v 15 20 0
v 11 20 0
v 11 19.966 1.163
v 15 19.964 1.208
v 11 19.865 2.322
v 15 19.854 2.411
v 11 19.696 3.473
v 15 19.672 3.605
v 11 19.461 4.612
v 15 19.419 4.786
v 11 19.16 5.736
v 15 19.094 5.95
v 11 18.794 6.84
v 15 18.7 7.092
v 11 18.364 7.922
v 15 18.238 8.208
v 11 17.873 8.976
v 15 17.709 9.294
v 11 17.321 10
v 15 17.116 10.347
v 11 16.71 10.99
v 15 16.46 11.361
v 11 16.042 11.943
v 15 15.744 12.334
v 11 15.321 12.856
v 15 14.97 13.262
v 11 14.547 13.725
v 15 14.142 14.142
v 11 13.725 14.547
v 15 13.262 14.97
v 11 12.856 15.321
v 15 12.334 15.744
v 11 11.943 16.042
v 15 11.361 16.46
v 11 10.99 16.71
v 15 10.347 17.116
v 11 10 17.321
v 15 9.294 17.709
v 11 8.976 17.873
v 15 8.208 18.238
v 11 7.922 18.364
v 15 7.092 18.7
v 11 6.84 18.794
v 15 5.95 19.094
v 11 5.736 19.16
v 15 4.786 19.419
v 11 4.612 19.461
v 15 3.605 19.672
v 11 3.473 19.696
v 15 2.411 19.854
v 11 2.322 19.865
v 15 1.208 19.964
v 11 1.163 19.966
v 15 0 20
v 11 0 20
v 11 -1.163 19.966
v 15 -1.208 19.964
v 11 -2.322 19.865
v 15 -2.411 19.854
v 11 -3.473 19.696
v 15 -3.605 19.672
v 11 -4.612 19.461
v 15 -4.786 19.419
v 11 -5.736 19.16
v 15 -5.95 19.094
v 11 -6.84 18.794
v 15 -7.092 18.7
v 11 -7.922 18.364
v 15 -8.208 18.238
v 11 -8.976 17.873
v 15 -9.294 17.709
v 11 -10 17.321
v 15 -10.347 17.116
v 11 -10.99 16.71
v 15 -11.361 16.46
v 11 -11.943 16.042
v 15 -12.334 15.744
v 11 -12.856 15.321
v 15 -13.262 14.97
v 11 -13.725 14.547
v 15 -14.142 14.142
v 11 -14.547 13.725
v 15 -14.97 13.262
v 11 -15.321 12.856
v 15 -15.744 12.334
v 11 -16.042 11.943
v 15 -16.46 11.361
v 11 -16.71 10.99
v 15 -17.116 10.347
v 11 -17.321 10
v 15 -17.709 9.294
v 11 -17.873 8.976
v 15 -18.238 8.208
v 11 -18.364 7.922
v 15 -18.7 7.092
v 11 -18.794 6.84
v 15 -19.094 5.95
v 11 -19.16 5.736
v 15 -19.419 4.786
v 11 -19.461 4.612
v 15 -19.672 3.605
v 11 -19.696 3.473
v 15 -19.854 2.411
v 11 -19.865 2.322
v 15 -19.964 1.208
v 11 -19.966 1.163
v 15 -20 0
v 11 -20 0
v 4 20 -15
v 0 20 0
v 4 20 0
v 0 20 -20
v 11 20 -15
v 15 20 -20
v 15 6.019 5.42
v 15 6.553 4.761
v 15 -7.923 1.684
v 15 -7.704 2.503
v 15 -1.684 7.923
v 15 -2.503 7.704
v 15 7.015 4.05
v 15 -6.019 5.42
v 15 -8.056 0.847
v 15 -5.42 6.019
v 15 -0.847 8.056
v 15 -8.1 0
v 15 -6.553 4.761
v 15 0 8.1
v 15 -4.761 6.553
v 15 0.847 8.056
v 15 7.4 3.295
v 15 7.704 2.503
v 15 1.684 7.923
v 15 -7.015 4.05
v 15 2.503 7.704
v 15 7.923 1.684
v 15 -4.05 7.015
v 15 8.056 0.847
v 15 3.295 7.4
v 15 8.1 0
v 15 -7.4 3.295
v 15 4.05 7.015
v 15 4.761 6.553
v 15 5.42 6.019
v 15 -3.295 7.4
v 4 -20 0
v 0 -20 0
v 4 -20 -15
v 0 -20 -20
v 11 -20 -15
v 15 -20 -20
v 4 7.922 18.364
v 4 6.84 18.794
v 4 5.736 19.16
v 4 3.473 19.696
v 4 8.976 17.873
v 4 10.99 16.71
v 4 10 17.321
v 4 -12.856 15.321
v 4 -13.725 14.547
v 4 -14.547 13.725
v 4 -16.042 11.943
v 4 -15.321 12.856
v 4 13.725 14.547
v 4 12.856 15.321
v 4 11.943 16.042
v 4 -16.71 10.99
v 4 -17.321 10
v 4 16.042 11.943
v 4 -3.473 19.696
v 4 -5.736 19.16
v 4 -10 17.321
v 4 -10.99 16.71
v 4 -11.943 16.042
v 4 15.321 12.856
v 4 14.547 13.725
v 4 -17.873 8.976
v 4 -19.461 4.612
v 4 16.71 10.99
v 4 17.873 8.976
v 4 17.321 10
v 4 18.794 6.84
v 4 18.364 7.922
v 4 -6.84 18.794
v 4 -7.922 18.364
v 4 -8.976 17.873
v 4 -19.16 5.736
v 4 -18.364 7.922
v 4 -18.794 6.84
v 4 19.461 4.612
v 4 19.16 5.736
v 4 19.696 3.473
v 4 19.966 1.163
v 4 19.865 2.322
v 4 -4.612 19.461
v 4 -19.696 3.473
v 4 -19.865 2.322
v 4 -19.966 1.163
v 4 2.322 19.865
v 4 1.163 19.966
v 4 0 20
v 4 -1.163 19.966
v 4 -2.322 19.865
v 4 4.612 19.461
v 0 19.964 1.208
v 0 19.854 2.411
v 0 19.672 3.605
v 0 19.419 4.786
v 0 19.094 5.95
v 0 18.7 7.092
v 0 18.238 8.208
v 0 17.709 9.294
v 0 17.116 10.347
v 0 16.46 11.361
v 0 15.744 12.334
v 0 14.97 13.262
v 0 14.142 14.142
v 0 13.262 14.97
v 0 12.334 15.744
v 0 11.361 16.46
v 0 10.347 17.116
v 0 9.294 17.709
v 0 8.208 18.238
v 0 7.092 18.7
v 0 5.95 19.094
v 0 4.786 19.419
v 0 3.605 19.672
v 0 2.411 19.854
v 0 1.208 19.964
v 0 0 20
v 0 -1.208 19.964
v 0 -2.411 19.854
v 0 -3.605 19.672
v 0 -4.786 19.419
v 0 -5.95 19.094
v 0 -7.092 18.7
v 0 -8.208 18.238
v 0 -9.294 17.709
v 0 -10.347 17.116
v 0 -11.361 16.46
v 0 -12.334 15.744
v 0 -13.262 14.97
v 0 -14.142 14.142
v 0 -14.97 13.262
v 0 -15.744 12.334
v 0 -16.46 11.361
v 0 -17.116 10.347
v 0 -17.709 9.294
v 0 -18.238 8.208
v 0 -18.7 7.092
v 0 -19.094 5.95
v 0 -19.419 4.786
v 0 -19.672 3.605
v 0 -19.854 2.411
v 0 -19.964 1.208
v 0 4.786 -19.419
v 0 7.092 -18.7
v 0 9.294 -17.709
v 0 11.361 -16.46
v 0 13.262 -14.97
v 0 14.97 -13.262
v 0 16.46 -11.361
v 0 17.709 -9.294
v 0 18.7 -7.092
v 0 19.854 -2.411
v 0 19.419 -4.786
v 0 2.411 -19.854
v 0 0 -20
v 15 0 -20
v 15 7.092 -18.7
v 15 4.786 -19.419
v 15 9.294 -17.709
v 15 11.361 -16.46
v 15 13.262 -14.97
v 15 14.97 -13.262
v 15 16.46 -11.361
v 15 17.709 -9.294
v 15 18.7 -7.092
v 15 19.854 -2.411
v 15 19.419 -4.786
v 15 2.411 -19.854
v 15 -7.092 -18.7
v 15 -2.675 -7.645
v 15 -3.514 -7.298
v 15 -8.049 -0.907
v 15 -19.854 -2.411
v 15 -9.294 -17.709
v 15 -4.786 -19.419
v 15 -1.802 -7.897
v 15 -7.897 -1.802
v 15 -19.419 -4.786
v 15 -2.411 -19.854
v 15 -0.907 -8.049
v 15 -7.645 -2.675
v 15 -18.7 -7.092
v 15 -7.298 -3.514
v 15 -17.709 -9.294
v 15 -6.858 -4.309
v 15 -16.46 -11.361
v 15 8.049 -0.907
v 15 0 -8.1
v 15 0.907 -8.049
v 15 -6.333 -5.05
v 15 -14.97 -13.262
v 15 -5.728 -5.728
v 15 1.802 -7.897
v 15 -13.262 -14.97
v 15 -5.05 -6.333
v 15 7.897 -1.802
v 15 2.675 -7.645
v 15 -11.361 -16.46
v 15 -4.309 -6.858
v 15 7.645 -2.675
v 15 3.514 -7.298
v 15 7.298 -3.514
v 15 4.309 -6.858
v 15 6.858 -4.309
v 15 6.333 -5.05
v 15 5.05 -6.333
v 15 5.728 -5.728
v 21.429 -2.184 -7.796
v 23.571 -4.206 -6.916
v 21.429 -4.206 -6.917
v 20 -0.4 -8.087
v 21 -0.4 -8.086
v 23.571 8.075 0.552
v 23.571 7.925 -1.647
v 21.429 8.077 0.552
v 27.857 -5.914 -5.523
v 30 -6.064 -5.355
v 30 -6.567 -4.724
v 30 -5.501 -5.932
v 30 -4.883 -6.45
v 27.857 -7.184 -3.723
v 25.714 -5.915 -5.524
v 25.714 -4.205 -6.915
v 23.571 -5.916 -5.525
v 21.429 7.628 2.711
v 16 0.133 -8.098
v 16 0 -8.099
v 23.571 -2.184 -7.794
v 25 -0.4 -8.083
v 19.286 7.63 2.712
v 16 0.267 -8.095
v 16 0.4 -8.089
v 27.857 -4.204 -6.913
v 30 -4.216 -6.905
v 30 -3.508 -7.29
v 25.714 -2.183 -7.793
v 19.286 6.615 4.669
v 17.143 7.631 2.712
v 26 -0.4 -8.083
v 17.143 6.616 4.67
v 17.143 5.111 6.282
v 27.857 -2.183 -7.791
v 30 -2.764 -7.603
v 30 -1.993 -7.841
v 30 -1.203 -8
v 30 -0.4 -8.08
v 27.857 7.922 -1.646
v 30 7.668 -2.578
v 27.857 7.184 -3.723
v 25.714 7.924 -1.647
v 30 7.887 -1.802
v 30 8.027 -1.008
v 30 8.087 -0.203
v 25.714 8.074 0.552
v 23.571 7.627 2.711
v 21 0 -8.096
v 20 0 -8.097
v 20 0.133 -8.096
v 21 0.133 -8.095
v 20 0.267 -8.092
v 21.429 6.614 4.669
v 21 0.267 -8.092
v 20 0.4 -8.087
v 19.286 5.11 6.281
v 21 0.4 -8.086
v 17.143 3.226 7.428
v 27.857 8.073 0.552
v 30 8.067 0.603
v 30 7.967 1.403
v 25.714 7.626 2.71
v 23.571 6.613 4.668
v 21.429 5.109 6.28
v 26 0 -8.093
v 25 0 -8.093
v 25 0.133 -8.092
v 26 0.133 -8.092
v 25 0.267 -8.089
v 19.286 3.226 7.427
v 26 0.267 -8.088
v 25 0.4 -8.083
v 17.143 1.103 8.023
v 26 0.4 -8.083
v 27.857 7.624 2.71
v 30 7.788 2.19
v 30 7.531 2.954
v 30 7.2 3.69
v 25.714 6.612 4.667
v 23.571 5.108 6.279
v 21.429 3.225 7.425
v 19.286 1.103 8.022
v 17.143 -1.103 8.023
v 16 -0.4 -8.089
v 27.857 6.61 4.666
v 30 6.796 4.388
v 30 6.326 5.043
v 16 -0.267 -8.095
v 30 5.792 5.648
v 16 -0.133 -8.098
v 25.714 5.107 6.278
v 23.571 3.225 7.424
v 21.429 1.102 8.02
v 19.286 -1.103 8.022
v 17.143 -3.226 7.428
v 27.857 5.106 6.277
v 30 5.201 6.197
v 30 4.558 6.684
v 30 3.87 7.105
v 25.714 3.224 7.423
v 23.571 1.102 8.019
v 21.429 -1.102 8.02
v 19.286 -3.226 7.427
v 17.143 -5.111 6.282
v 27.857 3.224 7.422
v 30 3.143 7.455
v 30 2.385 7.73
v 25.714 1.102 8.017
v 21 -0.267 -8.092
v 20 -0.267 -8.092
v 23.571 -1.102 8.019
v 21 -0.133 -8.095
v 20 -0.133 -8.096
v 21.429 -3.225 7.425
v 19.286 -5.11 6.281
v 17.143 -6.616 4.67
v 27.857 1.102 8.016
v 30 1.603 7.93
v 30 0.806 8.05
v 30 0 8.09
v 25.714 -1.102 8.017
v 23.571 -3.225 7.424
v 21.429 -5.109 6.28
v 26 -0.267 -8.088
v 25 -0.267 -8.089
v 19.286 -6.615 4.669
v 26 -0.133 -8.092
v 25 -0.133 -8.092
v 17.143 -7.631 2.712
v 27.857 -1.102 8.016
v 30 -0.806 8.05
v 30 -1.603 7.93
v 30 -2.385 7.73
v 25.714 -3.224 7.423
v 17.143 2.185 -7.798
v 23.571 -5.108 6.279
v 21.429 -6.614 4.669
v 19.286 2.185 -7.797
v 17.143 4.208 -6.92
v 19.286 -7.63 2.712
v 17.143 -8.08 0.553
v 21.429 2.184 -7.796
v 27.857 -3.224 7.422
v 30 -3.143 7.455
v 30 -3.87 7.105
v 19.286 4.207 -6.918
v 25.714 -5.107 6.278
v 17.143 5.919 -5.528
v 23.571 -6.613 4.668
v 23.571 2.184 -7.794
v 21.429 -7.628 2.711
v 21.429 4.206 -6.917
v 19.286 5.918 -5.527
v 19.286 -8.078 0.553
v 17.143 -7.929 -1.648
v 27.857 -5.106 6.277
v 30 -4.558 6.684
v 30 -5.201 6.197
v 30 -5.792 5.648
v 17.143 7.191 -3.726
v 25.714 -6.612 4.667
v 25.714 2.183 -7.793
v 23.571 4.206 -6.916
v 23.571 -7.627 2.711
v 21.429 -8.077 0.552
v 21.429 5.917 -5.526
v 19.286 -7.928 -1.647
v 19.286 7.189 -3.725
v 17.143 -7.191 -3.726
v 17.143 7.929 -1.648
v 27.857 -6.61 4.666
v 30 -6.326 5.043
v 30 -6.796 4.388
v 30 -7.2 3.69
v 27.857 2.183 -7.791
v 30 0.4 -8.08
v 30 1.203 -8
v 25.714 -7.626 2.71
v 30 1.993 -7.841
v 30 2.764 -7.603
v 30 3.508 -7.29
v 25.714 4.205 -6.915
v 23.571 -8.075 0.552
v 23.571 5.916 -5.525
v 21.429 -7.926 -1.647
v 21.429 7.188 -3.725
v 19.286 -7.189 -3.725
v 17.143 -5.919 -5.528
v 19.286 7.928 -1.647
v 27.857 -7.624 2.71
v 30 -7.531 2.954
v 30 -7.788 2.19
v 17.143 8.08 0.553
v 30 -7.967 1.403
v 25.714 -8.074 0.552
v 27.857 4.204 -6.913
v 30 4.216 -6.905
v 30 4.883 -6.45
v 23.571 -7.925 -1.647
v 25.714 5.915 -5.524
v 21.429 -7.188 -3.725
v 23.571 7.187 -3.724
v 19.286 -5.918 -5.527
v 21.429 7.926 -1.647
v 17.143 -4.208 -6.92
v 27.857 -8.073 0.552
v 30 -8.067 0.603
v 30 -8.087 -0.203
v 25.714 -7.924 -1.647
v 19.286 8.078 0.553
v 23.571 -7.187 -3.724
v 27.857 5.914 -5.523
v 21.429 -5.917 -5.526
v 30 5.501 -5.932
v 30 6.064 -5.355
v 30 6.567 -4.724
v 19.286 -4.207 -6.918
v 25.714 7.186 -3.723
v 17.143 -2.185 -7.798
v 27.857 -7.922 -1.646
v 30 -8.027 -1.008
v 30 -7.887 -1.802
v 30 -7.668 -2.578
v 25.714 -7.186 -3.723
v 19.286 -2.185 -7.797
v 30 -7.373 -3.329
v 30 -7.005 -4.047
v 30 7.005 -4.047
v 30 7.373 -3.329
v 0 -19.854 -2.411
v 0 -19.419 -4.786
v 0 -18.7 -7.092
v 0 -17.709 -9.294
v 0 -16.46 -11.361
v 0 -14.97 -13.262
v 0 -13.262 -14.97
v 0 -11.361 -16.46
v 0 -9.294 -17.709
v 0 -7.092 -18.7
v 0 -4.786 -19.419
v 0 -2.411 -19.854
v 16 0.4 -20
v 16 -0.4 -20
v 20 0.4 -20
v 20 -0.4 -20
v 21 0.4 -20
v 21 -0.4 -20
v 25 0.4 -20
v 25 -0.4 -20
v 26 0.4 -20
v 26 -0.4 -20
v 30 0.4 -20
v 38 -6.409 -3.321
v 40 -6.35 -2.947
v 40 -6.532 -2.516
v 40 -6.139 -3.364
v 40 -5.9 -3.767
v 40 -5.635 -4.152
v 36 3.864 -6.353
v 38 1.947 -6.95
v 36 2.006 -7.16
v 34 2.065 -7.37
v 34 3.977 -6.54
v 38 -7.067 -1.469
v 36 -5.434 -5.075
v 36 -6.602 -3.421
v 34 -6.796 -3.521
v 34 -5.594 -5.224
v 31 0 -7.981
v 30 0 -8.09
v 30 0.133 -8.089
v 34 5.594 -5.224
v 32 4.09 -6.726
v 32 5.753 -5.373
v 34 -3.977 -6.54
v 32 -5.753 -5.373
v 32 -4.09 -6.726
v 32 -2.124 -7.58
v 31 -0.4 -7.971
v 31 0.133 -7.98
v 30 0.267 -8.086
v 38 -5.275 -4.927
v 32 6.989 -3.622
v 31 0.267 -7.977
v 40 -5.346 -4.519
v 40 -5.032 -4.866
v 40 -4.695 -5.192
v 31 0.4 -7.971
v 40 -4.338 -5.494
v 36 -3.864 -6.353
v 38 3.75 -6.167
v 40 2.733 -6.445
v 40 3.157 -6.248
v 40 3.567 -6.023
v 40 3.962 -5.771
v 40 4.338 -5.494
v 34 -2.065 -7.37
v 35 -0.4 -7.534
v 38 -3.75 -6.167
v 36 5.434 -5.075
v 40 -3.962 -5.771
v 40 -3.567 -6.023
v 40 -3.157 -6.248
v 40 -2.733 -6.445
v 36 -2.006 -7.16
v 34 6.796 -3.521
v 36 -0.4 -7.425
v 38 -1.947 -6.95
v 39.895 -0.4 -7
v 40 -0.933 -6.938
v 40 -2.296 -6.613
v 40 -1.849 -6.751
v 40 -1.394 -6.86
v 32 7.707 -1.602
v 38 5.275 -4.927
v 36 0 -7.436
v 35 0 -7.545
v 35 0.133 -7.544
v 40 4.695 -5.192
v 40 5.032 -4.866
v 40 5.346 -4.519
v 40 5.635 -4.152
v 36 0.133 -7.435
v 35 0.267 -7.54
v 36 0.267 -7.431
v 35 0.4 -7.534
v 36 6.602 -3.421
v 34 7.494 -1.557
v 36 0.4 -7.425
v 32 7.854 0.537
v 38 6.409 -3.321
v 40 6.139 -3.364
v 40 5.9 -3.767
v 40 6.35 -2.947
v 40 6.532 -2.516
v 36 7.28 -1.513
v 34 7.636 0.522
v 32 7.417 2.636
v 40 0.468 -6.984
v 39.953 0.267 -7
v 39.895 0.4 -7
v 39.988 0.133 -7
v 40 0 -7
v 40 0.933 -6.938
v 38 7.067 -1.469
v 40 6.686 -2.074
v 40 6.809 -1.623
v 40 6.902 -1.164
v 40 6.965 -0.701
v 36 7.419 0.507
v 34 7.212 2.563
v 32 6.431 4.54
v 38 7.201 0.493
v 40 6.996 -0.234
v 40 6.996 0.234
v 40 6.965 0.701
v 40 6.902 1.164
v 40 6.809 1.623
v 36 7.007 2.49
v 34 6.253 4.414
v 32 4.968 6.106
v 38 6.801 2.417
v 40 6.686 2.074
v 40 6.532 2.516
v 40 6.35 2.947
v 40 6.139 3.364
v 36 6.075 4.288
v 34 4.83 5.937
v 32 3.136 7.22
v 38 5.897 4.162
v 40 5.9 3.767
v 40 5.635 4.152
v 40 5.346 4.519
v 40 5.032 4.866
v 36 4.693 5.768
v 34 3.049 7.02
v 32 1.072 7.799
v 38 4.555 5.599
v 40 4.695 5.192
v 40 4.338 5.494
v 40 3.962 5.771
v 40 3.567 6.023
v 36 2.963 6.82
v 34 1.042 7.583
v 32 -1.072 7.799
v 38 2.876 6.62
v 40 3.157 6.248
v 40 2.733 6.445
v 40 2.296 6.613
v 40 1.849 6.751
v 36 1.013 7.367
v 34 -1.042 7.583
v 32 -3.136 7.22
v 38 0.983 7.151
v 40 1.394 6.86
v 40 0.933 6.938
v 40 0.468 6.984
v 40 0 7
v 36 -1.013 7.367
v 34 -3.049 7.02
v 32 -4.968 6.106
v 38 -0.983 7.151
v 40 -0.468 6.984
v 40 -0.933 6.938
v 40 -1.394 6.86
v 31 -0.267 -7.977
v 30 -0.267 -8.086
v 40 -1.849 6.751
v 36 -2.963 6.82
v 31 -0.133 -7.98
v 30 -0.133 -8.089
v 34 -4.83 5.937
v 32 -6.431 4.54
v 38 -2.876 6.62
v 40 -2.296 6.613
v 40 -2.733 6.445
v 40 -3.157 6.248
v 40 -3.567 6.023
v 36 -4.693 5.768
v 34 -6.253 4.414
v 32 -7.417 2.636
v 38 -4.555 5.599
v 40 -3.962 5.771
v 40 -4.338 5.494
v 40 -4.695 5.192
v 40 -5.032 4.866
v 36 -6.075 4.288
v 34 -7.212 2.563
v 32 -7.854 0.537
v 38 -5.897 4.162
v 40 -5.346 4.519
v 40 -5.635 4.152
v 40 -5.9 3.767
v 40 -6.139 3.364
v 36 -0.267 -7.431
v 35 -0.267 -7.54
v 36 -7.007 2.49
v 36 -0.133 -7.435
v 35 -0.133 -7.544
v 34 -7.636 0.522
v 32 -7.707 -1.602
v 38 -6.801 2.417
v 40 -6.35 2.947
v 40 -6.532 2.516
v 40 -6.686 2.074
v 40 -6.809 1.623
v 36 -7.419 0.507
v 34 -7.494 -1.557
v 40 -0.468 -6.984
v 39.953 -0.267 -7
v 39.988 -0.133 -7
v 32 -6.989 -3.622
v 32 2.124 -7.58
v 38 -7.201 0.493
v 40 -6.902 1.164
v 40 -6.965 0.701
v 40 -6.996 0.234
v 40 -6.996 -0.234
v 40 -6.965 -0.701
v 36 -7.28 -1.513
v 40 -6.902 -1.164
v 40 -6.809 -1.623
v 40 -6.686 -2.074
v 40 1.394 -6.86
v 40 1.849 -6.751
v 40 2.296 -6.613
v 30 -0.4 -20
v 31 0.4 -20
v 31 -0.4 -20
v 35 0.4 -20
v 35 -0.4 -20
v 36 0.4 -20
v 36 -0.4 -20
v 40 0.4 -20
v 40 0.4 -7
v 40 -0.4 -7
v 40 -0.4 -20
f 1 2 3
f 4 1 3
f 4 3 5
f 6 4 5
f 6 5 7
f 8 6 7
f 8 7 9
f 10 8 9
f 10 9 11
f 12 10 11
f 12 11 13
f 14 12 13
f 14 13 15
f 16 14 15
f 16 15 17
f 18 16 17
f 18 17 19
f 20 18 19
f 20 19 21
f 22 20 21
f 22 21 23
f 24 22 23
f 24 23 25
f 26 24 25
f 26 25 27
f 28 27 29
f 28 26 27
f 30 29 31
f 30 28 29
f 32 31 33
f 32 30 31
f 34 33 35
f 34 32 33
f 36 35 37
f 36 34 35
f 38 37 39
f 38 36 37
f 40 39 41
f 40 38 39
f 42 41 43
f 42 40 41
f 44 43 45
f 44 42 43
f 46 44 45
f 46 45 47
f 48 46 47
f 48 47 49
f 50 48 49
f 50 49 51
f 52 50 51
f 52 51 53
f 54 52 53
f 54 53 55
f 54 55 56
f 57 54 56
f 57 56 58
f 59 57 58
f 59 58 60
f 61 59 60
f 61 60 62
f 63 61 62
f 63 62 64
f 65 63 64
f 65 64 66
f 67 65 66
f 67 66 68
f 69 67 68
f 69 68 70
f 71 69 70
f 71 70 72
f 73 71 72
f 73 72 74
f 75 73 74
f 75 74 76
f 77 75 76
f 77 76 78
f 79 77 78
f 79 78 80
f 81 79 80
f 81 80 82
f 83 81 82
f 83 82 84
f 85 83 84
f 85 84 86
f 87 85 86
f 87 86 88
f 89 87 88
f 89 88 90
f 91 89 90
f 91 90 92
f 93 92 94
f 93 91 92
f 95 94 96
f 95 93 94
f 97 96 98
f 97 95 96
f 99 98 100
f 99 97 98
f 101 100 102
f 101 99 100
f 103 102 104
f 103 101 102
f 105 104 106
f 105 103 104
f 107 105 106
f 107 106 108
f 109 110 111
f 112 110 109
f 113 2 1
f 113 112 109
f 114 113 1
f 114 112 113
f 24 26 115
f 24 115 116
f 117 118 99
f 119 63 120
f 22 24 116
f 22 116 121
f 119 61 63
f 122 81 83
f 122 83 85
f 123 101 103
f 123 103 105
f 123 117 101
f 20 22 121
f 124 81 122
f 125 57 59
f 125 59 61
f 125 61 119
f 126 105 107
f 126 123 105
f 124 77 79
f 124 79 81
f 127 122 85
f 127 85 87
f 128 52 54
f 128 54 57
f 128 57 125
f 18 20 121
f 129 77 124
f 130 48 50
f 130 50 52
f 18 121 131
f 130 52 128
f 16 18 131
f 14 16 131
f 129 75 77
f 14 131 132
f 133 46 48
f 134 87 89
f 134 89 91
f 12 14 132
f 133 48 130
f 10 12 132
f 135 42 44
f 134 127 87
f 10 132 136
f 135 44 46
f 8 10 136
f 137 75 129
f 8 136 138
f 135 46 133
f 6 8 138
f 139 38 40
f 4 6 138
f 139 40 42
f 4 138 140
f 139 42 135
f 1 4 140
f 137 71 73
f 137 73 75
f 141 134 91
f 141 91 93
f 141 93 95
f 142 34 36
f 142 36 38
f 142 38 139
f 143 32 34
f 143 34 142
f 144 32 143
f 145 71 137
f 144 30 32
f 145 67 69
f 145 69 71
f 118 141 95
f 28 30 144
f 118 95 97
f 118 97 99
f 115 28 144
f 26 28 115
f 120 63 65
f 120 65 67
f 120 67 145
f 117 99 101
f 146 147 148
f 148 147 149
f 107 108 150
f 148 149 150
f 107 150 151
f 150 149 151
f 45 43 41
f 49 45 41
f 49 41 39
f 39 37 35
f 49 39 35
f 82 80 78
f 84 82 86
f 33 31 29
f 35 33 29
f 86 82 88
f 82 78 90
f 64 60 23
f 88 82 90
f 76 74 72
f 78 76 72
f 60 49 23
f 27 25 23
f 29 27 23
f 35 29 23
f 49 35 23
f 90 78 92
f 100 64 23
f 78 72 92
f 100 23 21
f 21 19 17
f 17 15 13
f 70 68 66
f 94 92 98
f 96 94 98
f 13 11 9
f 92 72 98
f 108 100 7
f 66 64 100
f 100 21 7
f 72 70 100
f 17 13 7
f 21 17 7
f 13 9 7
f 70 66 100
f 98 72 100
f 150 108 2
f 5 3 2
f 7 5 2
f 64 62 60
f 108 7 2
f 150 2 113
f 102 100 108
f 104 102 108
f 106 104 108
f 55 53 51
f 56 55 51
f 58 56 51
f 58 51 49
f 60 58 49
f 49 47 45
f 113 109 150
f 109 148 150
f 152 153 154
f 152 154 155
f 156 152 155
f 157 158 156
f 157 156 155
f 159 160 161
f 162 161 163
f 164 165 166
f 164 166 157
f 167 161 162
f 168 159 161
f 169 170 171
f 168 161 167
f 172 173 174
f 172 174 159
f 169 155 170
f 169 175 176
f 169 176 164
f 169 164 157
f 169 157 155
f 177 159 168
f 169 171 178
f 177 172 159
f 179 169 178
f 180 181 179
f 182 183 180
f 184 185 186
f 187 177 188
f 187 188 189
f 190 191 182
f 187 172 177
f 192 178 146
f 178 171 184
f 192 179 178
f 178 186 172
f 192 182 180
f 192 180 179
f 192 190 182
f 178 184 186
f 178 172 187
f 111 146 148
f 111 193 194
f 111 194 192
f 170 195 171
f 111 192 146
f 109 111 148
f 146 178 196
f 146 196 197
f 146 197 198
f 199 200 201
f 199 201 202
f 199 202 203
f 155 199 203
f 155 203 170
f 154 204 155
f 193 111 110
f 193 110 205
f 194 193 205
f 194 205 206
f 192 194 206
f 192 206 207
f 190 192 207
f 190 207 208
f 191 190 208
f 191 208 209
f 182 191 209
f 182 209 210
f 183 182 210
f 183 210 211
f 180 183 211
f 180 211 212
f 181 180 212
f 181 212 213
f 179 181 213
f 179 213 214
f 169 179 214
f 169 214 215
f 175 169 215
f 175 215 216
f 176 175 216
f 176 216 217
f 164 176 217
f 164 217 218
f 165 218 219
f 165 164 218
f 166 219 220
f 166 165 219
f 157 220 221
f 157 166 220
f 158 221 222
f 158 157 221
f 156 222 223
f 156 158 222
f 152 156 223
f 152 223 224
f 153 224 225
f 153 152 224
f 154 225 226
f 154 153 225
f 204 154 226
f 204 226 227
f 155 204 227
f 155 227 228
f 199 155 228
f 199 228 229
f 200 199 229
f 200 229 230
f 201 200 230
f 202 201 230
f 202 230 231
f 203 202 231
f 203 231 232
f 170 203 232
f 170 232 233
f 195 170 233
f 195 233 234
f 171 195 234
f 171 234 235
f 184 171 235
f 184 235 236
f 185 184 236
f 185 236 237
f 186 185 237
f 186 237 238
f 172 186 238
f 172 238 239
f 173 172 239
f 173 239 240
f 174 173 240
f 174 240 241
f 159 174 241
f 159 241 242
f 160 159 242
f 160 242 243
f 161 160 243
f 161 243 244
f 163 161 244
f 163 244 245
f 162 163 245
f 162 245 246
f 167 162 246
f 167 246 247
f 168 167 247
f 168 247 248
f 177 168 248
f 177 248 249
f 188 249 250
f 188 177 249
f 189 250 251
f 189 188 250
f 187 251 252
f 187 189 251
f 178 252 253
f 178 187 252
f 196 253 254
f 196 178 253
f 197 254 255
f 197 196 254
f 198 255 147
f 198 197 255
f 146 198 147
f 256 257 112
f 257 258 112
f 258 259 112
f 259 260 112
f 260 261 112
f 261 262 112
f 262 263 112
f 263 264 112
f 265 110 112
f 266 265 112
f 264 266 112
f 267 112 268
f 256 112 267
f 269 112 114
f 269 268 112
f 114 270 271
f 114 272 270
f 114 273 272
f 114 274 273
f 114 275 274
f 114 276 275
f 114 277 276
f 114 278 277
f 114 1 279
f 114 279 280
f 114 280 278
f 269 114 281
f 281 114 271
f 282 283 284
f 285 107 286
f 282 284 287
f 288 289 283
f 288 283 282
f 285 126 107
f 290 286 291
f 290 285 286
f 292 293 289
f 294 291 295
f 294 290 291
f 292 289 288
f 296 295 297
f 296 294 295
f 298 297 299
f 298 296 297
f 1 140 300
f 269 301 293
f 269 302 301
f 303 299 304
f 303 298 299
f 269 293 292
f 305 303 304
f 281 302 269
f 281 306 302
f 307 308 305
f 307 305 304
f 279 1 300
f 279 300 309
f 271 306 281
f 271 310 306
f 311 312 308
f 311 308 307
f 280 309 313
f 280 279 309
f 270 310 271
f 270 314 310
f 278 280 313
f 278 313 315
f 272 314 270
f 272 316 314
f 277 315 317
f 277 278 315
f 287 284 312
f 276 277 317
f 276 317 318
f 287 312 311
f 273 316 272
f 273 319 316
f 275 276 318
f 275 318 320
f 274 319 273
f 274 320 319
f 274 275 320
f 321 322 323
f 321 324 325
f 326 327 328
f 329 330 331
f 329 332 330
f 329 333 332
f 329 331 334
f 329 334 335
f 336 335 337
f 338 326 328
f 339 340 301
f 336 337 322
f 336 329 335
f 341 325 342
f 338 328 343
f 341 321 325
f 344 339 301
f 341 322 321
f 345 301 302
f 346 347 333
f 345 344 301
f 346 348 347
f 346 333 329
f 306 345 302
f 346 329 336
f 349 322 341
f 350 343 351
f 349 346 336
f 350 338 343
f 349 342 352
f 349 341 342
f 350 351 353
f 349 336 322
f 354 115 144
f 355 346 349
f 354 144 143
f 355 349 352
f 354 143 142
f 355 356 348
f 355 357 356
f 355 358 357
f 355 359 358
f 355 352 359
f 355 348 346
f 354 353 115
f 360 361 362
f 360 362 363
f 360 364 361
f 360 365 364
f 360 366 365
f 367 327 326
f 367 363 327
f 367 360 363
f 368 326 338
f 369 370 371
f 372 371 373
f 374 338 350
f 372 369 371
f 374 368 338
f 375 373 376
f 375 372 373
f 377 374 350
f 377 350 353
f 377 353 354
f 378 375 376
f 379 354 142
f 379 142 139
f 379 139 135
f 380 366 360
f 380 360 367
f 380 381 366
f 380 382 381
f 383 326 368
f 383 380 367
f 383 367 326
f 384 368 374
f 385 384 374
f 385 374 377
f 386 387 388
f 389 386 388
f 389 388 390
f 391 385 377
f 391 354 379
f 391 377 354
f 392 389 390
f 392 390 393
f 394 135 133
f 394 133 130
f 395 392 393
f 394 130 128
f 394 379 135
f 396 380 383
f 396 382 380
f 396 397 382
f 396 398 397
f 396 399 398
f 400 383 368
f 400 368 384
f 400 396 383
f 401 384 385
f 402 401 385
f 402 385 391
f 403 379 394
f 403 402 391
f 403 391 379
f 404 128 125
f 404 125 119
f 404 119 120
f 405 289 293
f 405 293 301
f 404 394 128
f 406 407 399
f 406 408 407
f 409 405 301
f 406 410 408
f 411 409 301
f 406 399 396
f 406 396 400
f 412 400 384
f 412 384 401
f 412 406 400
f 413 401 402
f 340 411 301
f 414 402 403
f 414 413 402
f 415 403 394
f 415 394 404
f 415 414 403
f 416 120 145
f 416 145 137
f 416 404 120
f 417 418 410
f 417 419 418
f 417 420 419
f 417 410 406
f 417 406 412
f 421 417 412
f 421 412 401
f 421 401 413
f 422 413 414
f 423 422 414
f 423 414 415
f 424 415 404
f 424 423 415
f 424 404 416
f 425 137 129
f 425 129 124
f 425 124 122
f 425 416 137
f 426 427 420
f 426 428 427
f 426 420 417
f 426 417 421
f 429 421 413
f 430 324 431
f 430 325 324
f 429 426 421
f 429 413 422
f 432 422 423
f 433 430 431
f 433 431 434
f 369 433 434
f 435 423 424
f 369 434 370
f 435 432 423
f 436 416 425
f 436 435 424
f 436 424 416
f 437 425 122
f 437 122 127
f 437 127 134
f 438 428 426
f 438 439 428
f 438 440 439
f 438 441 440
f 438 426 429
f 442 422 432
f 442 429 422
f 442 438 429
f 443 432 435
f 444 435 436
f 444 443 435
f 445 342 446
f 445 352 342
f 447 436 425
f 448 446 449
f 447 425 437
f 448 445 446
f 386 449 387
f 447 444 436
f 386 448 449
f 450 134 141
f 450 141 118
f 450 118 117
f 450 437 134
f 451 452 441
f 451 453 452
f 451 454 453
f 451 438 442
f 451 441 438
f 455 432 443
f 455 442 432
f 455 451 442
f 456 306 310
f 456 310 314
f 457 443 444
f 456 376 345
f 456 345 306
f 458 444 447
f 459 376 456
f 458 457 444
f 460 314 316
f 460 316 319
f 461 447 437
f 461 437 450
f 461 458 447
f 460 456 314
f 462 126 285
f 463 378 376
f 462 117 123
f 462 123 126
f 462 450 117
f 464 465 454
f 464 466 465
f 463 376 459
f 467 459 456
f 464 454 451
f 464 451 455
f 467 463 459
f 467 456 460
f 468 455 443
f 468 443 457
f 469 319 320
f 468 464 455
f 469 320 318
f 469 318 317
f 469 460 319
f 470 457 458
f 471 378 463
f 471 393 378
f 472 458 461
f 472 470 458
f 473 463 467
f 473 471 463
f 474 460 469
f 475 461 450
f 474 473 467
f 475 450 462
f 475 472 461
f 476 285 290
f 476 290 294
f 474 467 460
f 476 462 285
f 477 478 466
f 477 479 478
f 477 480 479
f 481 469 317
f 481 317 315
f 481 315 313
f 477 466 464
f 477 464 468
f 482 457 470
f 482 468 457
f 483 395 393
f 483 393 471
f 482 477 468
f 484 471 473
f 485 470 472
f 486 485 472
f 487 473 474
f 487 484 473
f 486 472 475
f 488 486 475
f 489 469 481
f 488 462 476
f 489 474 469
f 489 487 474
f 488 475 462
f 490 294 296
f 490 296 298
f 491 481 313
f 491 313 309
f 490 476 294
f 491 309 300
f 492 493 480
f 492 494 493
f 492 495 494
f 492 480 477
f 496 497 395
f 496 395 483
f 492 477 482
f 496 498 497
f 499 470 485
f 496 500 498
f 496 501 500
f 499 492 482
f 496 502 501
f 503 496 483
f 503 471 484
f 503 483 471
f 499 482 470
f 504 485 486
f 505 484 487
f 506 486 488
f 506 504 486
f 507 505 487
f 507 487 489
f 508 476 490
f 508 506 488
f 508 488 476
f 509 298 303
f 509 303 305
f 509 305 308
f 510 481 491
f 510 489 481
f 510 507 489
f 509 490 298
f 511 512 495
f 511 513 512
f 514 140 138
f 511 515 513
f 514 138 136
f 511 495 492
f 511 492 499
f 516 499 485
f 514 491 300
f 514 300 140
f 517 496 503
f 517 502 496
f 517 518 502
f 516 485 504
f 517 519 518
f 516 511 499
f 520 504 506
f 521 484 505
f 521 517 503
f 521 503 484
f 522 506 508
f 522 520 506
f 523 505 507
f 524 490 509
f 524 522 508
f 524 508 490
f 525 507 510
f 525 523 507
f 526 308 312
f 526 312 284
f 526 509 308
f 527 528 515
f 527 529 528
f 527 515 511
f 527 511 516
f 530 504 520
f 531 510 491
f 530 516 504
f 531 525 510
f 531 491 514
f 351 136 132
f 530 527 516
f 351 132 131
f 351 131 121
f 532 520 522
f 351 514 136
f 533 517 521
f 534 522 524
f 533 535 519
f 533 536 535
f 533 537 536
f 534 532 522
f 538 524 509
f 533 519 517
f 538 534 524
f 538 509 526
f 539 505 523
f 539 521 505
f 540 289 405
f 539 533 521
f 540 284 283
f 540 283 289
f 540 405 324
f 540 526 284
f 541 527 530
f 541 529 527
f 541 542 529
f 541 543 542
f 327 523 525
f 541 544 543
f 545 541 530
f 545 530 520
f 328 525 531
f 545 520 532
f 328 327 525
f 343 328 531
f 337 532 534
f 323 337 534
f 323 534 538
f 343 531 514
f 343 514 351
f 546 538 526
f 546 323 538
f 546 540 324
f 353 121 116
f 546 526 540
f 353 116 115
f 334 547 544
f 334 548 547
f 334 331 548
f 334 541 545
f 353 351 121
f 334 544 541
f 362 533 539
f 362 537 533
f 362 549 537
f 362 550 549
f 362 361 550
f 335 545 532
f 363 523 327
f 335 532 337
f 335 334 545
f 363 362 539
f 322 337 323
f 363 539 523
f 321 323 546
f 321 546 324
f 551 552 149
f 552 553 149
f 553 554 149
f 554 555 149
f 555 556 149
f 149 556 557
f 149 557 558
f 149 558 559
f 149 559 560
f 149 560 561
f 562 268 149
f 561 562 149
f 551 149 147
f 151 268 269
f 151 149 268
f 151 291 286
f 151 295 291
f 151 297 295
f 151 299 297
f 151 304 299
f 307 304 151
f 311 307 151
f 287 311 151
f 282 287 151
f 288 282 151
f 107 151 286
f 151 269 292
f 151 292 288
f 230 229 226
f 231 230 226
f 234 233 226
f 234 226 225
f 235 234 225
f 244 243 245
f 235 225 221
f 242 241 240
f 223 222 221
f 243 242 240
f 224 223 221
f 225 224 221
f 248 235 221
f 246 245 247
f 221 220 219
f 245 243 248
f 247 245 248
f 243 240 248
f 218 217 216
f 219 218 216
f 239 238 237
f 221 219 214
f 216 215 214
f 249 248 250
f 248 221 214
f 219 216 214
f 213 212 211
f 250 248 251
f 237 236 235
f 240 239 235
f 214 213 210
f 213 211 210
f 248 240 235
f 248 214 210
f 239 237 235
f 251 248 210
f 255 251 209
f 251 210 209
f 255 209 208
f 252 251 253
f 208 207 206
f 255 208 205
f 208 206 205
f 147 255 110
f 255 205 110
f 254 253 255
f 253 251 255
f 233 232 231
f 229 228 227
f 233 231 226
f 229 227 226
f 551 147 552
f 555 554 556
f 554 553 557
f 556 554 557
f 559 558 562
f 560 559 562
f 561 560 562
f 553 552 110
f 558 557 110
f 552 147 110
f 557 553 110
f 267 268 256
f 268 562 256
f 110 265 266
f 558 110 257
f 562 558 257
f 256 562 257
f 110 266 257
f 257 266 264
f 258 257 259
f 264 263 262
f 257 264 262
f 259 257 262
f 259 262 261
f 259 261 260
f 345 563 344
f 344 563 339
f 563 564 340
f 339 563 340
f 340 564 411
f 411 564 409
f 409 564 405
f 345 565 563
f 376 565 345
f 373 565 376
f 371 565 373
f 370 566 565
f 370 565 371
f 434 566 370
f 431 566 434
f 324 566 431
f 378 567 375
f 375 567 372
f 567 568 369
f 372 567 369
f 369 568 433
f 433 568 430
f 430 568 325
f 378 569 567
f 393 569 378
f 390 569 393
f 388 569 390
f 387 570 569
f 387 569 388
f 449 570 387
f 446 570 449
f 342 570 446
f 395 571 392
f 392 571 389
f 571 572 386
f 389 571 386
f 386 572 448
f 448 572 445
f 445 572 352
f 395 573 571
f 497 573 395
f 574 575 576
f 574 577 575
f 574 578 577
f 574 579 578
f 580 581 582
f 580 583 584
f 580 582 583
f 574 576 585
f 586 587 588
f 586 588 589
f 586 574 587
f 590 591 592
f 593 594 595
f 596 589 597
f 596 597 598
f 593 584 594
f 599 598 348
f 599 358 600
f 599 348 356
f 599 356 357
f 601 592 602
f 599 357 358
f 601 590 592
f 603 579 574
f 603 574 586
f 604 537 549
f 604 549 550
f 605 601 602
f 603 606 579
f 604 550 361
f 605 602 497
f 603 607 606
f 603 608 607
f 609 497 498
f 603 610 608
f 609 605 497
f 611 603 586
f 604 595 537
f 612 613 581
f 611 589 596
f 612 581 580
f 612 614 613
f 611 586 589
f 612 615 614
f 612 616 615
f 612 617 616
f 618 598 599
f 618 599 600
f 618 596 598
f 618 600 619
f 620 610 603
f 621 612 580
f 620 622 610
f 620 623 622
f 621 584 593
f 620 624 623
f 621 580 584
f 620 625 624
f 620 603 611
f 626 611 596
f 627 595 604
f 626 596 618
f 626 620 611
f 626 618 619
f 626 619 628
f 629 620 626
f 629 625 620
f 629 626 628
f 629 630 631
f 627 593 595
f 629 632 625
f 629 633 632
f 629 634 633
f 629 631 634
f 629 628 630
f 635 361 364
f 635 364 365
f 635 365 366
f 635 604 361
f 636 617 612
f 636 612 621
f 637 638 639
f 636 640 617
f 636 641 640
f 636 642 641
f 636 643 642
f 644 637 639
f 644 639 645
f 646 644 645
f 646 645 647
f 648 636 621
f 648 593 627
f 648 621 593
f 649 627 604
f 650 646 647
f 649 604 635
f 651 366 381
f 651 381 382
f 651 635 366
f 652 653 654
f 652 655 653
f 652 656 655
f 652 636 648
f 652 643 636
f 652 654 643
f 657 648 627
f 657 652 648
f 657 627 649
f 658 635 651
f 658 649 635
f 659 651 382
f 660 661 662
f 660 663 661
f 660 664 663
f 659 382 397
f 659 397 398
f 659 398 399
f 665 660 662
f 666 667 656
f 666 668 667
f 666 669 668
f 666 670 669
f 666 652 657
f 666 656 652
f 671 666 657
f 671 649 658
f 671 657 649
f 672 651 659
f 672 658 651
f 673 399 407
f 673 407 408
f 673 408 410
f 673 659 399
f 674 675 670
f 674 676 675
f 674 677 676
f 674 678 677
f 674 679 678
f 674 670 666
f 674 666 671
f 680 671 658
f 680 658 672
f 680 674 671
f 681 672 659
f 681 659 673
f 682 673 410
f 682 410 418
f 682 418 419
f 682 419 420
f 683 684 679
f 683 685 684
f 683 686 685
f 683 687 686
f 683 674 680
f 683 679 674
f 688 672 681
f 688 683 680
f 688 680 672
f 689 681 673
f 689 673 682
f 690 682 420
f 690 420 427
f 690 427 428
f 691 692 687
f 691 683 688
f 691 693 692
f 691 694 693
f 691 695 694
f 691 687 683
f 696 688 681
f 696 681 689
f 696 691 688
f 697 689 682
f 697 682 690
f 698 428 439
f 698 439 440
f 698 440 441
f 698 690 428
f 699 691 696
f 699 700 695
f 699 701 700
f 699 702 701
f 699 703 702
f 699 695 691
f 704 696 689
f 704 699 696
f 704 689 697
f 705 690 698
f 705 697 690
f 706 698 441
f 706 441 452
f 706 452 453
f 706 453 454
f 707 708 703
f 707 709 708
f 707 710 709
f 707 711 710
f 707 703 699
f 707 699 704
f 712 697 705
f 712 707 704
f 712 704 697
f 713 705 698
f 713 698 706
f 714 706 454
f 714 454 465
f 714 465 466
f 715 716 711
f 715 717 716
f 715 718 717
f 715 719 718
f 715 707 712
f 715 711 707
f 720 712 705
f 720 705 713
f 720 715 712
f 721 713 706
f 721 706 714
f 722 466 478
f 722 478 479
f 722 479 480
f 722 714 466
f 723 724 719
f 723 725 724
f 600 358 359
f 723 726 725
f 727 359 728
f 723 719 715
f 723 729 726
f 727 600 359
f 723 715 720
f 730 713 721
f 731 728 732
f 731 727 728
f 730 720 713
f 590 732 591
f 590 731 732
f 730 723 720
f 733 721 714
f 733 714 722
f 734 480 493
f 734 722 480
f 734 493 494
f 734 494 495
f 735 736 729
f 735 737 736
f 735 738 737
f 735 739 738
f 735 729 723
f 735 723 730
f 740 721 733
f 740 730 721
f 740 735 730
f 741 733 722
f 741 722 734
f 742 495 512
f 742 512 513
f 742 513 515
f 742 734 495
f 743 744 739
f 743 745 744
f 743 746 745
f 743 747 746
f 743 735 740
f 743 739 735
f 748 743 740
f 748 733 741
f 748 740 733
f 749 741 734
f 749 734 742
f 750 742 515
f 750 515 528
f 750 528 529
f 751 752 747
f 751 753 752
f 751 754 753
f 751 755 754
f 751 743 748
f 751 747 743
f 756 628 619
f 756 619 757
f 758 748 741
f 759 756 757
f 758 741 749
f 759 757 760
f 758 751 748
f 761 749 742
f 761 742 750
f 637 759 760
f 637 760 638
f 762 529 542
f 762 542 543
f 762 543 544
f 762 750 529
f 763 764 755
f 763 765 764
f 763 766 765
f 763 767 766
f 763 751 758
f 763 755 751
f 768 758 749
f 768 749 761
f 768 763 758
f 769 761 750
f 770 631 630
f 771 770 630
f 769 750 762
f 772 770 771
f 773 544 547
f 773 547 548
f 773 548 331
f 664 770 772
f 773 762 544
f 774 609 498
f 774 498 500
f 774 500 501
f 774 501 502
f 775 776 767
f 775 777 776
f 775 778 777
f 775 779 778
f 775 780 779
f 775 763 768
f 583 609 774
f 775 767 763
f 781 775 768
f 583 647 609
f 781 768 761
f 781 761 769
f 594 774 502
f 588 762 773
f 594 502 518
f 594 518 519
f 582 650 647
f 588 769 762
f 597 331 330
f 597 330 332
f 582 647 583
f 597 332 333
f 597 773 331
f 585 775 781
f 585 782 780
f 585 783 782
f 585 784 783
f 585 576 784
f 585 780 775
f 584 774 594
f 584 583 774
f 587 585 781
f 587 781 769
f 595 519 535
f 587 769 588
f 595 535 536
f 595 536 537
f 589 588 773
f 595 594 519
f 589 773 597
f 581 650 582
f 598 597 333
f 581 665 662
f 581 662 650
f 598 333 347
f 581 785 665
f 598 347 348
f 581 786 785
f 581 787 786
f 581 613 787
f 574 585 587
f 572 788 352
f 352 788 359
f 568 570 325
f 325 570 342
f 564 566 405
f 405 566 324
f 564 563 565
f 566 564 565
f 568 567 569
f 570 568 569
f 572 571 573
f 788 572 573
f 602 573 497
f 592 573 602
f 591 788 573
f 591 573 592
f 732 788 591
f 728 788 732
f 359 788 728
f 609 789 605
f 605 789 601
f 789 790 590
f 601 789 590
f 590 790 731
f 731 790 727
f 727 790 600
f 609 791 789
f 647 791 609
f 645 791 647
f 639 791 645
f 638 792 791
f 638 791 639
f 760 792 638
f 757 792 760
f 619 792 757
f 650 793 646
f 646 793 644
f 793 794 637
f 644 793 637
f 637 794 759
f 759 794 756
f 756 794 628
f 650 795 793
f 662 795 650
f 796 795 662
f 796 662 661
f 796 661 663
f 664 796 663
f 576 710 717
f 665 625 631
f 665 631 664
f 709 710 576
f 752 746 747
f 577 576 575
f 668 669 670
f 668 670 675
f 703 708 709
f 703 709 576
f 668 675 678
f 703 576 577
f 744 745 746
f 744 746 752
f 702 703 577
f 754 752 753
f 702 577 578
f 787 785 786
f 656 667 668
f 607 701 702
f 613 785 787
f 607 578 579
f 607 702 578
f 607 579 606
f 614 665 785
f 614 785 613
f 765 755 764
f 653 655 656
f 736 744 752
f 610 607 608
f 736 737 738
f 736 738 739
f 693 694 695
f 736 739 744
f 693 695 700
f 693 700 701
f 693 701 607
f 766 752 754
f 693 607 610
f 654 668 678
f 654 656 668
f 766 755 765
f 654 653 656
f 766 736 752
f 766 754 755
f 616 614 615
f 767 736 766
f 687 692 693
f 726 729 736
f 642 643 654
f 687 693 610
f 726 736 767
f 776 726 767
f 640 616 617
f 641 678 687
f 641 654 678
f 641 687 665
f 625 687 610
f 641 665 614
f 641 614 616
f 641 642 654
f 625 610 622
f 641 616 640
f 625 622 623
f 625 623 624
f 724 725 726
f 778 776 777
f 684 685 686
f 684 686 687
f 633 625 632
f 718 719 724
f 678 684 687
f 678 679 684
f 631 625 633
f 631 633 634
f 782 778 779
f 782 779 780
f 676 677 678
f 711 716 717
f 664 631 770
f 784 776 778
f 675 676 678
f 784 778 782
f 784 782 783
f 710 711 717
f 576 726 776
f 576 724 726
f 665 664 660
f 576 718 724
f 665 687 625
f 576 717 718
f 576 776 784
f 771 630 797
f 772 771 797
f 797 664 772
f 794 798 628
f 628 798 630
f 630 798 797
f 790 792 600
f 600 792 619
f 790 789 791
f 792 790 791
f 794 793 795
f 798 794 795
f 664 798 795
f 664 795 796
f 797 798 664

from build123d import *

# Parameters (mm, degrees)
BOX002004_W           = 4
BOX002004_H           = 0.8
BOX002004_DEPTH       = 13
BOX002003_W           = 4
BOX002003_H           = 0.8
BOX002003_DEPTH       = 13
BOX002002_W           = 4
BOX002002_H           = 0.8
BOX002002_DEPTH       = 13
BOX002001_W           = 4
BOX002001_H           = 0.8
BOX002001_DEPTH       = 13
BOX002_W              = 4
BOX002_H              = 0.8
BOX002_DEPTH          = 13
BOX001_W              = 36
BOX001_H              = 46
BOX001_DEPTH          = 7
CYLINDER001_R         = 20
CYLINDER001_DEPTH     = 15
BOX_W                 = 20
BOX_H                 = 40
BOX_DEPTH             = 15
FUSION002_PITCH_ANGLE = 90


with BuildPart() as support005:
    # Box002004 → Box002004 (new body)
    with BuildSketch(Plane(origin=(36, -0.4, -20), x_dir=(1, 0, 0), z_dir=(0, 0, 1))):
        with Locations((2, 0.4)):
            Rectangle(BOX002004_W, BOX002004_H)
    extrude(amount=BOX002004_DEPTH)


with BuildPart() as support004:
    # Box002003 → Box002003 (new body)
    with BuildSketch(Plane(origin=(31, -0.4, -20), x_dir=(1, 0, 0), z_dir=(0, 0, 1))):
        with Locations((2, 0.4)):
            Rectangle(BOX002003_W, BOX002003_H)
    extrude(amount=BOX002003_DEPTH)


with BuildPart() as support003:
    # Box002002 → Box002002 (new body)
    with BuildSketch(Plane(origin=(26, -0.4, -20), x_dir=(1, 0, 0), z_dir=(0, 0, 1))):
        with Locations((2, 0.4)):
            Rectangle(BOX002002_W, BOX002002_H)
    extrude(amount=BOX002002_DEPTH)


with BuildPart() as support002:
    # Box002001 → Box002001 (new body)
    with BuildSketch(Plane(origin=(21, -0.4, -20), x_dir=(1, 0, 0), z_dir=(0, 0, 1))):
        with Locations((2, 0.4)):
            Rectangle(BOX002001_W, BOX002001_H)
    extrude(amount=BOX002001_DEPTH)


with BuildPart() as support:
    # Box002 → Box002 (new body)
    with BuildSketch(Plane(origin=(16, -0.4, -20), x_dir=(1, 0, 0), z_dir=(0, 0, 1))):
        with Locations((2, 0.4)):
            Rectangle(BOX002_W, BOX002_H)
    extrude(amount=BOX002_DEPTH)

    # Fusion003: union Support002
    add(support002.part)

    # Fusion004: union Support003
    add(support003.part)

    # Fusion005: union Support004
    add(support004.part)

    # Fusion006: union Support005
    add(support005.part)


with BuildPart() as cone001:
    # Cone001 → Cone001 (revolve)
    with BuildSketch(Plane(origin=(0, 0, 30), x_dir=(1, 0, 0), z_dir=(0, -1, 0))):
        Polygon((0, 0), (8.09, 0), (7, 10), (0, 10), align=None)
    revolve(axis=Axis((0, 0, 30), (0, 0, 1)))


with BuildPart() as prise_male:
    # Cone → Cone (revolve)
    with BuildSketch(Plane(origin=(0, 0, 15), x_dir=(1, 0, 0), z_dir=(0, -1, 0))):
        Polygon((0, 0), (8.1, 0), (8.09, 15), (0, 15), align=None)
    revolve(axis=Axis((0, 0, 15), (0, 0, 1)))

    # Fusion001: union Cone001
    add(cone001.part)


with BuildPart() as trou:
    # Box001 → Box001 (new body)
    with BuildSketch(Plane(origin=(-21, -23, 4), x_dir=(1, 0, 0), z_dir=(0, 0, 1))):
        with Locations((18, 23)):
            Rectangle(BOX001_W, BOX001_H)
    extrude(amount=BOX001_DEPTH)


with BuildPart() as cylinder_corps:
    # Cylinder001 → Cylinder001 (new body)
    with BuildSketch(Plane.XY):
        Circle(CYLINDER001_R)
    extrude(amount=CYLINDER001_DEPTH)


with BuildPart() as connecteur_et_support:
    # Box → Box (new body)
    with BuildSketch(Plane(origin=(0, -20, 0), x_dir=(1, 0, 0), z_dir=(0, 0, 1))):
        with Locations((10, 20)):
            Rectangle(BOX_W, BOX_H)
    extrude(amount=BOX_DEPTH)

    # Fusion: union Cylinder-corps
    add(cylinder_corps.part)

    # Cut: cut trou
    add(trou.part, mode=Mode.SUBTRACT)

    # Fusion002: union Prise male
    add(prise_male.part)


with BuildPart() as connecteur_et_support_1:
    # Fusion002 pitch: moved
    add(connecteur_et_support.part.rotate(Axis((0, 0, 0), (0, 1, 0)), FUSION002_PITCH_ANGLE))


with BuildPart() as connecteur_et_support_2:
    # Fusion002 placement: moved
    add(connecteur_et_support_1.part)

    # Fusion007: union Support
    add(support.part)


solid = connecteur_et_support_2.part
